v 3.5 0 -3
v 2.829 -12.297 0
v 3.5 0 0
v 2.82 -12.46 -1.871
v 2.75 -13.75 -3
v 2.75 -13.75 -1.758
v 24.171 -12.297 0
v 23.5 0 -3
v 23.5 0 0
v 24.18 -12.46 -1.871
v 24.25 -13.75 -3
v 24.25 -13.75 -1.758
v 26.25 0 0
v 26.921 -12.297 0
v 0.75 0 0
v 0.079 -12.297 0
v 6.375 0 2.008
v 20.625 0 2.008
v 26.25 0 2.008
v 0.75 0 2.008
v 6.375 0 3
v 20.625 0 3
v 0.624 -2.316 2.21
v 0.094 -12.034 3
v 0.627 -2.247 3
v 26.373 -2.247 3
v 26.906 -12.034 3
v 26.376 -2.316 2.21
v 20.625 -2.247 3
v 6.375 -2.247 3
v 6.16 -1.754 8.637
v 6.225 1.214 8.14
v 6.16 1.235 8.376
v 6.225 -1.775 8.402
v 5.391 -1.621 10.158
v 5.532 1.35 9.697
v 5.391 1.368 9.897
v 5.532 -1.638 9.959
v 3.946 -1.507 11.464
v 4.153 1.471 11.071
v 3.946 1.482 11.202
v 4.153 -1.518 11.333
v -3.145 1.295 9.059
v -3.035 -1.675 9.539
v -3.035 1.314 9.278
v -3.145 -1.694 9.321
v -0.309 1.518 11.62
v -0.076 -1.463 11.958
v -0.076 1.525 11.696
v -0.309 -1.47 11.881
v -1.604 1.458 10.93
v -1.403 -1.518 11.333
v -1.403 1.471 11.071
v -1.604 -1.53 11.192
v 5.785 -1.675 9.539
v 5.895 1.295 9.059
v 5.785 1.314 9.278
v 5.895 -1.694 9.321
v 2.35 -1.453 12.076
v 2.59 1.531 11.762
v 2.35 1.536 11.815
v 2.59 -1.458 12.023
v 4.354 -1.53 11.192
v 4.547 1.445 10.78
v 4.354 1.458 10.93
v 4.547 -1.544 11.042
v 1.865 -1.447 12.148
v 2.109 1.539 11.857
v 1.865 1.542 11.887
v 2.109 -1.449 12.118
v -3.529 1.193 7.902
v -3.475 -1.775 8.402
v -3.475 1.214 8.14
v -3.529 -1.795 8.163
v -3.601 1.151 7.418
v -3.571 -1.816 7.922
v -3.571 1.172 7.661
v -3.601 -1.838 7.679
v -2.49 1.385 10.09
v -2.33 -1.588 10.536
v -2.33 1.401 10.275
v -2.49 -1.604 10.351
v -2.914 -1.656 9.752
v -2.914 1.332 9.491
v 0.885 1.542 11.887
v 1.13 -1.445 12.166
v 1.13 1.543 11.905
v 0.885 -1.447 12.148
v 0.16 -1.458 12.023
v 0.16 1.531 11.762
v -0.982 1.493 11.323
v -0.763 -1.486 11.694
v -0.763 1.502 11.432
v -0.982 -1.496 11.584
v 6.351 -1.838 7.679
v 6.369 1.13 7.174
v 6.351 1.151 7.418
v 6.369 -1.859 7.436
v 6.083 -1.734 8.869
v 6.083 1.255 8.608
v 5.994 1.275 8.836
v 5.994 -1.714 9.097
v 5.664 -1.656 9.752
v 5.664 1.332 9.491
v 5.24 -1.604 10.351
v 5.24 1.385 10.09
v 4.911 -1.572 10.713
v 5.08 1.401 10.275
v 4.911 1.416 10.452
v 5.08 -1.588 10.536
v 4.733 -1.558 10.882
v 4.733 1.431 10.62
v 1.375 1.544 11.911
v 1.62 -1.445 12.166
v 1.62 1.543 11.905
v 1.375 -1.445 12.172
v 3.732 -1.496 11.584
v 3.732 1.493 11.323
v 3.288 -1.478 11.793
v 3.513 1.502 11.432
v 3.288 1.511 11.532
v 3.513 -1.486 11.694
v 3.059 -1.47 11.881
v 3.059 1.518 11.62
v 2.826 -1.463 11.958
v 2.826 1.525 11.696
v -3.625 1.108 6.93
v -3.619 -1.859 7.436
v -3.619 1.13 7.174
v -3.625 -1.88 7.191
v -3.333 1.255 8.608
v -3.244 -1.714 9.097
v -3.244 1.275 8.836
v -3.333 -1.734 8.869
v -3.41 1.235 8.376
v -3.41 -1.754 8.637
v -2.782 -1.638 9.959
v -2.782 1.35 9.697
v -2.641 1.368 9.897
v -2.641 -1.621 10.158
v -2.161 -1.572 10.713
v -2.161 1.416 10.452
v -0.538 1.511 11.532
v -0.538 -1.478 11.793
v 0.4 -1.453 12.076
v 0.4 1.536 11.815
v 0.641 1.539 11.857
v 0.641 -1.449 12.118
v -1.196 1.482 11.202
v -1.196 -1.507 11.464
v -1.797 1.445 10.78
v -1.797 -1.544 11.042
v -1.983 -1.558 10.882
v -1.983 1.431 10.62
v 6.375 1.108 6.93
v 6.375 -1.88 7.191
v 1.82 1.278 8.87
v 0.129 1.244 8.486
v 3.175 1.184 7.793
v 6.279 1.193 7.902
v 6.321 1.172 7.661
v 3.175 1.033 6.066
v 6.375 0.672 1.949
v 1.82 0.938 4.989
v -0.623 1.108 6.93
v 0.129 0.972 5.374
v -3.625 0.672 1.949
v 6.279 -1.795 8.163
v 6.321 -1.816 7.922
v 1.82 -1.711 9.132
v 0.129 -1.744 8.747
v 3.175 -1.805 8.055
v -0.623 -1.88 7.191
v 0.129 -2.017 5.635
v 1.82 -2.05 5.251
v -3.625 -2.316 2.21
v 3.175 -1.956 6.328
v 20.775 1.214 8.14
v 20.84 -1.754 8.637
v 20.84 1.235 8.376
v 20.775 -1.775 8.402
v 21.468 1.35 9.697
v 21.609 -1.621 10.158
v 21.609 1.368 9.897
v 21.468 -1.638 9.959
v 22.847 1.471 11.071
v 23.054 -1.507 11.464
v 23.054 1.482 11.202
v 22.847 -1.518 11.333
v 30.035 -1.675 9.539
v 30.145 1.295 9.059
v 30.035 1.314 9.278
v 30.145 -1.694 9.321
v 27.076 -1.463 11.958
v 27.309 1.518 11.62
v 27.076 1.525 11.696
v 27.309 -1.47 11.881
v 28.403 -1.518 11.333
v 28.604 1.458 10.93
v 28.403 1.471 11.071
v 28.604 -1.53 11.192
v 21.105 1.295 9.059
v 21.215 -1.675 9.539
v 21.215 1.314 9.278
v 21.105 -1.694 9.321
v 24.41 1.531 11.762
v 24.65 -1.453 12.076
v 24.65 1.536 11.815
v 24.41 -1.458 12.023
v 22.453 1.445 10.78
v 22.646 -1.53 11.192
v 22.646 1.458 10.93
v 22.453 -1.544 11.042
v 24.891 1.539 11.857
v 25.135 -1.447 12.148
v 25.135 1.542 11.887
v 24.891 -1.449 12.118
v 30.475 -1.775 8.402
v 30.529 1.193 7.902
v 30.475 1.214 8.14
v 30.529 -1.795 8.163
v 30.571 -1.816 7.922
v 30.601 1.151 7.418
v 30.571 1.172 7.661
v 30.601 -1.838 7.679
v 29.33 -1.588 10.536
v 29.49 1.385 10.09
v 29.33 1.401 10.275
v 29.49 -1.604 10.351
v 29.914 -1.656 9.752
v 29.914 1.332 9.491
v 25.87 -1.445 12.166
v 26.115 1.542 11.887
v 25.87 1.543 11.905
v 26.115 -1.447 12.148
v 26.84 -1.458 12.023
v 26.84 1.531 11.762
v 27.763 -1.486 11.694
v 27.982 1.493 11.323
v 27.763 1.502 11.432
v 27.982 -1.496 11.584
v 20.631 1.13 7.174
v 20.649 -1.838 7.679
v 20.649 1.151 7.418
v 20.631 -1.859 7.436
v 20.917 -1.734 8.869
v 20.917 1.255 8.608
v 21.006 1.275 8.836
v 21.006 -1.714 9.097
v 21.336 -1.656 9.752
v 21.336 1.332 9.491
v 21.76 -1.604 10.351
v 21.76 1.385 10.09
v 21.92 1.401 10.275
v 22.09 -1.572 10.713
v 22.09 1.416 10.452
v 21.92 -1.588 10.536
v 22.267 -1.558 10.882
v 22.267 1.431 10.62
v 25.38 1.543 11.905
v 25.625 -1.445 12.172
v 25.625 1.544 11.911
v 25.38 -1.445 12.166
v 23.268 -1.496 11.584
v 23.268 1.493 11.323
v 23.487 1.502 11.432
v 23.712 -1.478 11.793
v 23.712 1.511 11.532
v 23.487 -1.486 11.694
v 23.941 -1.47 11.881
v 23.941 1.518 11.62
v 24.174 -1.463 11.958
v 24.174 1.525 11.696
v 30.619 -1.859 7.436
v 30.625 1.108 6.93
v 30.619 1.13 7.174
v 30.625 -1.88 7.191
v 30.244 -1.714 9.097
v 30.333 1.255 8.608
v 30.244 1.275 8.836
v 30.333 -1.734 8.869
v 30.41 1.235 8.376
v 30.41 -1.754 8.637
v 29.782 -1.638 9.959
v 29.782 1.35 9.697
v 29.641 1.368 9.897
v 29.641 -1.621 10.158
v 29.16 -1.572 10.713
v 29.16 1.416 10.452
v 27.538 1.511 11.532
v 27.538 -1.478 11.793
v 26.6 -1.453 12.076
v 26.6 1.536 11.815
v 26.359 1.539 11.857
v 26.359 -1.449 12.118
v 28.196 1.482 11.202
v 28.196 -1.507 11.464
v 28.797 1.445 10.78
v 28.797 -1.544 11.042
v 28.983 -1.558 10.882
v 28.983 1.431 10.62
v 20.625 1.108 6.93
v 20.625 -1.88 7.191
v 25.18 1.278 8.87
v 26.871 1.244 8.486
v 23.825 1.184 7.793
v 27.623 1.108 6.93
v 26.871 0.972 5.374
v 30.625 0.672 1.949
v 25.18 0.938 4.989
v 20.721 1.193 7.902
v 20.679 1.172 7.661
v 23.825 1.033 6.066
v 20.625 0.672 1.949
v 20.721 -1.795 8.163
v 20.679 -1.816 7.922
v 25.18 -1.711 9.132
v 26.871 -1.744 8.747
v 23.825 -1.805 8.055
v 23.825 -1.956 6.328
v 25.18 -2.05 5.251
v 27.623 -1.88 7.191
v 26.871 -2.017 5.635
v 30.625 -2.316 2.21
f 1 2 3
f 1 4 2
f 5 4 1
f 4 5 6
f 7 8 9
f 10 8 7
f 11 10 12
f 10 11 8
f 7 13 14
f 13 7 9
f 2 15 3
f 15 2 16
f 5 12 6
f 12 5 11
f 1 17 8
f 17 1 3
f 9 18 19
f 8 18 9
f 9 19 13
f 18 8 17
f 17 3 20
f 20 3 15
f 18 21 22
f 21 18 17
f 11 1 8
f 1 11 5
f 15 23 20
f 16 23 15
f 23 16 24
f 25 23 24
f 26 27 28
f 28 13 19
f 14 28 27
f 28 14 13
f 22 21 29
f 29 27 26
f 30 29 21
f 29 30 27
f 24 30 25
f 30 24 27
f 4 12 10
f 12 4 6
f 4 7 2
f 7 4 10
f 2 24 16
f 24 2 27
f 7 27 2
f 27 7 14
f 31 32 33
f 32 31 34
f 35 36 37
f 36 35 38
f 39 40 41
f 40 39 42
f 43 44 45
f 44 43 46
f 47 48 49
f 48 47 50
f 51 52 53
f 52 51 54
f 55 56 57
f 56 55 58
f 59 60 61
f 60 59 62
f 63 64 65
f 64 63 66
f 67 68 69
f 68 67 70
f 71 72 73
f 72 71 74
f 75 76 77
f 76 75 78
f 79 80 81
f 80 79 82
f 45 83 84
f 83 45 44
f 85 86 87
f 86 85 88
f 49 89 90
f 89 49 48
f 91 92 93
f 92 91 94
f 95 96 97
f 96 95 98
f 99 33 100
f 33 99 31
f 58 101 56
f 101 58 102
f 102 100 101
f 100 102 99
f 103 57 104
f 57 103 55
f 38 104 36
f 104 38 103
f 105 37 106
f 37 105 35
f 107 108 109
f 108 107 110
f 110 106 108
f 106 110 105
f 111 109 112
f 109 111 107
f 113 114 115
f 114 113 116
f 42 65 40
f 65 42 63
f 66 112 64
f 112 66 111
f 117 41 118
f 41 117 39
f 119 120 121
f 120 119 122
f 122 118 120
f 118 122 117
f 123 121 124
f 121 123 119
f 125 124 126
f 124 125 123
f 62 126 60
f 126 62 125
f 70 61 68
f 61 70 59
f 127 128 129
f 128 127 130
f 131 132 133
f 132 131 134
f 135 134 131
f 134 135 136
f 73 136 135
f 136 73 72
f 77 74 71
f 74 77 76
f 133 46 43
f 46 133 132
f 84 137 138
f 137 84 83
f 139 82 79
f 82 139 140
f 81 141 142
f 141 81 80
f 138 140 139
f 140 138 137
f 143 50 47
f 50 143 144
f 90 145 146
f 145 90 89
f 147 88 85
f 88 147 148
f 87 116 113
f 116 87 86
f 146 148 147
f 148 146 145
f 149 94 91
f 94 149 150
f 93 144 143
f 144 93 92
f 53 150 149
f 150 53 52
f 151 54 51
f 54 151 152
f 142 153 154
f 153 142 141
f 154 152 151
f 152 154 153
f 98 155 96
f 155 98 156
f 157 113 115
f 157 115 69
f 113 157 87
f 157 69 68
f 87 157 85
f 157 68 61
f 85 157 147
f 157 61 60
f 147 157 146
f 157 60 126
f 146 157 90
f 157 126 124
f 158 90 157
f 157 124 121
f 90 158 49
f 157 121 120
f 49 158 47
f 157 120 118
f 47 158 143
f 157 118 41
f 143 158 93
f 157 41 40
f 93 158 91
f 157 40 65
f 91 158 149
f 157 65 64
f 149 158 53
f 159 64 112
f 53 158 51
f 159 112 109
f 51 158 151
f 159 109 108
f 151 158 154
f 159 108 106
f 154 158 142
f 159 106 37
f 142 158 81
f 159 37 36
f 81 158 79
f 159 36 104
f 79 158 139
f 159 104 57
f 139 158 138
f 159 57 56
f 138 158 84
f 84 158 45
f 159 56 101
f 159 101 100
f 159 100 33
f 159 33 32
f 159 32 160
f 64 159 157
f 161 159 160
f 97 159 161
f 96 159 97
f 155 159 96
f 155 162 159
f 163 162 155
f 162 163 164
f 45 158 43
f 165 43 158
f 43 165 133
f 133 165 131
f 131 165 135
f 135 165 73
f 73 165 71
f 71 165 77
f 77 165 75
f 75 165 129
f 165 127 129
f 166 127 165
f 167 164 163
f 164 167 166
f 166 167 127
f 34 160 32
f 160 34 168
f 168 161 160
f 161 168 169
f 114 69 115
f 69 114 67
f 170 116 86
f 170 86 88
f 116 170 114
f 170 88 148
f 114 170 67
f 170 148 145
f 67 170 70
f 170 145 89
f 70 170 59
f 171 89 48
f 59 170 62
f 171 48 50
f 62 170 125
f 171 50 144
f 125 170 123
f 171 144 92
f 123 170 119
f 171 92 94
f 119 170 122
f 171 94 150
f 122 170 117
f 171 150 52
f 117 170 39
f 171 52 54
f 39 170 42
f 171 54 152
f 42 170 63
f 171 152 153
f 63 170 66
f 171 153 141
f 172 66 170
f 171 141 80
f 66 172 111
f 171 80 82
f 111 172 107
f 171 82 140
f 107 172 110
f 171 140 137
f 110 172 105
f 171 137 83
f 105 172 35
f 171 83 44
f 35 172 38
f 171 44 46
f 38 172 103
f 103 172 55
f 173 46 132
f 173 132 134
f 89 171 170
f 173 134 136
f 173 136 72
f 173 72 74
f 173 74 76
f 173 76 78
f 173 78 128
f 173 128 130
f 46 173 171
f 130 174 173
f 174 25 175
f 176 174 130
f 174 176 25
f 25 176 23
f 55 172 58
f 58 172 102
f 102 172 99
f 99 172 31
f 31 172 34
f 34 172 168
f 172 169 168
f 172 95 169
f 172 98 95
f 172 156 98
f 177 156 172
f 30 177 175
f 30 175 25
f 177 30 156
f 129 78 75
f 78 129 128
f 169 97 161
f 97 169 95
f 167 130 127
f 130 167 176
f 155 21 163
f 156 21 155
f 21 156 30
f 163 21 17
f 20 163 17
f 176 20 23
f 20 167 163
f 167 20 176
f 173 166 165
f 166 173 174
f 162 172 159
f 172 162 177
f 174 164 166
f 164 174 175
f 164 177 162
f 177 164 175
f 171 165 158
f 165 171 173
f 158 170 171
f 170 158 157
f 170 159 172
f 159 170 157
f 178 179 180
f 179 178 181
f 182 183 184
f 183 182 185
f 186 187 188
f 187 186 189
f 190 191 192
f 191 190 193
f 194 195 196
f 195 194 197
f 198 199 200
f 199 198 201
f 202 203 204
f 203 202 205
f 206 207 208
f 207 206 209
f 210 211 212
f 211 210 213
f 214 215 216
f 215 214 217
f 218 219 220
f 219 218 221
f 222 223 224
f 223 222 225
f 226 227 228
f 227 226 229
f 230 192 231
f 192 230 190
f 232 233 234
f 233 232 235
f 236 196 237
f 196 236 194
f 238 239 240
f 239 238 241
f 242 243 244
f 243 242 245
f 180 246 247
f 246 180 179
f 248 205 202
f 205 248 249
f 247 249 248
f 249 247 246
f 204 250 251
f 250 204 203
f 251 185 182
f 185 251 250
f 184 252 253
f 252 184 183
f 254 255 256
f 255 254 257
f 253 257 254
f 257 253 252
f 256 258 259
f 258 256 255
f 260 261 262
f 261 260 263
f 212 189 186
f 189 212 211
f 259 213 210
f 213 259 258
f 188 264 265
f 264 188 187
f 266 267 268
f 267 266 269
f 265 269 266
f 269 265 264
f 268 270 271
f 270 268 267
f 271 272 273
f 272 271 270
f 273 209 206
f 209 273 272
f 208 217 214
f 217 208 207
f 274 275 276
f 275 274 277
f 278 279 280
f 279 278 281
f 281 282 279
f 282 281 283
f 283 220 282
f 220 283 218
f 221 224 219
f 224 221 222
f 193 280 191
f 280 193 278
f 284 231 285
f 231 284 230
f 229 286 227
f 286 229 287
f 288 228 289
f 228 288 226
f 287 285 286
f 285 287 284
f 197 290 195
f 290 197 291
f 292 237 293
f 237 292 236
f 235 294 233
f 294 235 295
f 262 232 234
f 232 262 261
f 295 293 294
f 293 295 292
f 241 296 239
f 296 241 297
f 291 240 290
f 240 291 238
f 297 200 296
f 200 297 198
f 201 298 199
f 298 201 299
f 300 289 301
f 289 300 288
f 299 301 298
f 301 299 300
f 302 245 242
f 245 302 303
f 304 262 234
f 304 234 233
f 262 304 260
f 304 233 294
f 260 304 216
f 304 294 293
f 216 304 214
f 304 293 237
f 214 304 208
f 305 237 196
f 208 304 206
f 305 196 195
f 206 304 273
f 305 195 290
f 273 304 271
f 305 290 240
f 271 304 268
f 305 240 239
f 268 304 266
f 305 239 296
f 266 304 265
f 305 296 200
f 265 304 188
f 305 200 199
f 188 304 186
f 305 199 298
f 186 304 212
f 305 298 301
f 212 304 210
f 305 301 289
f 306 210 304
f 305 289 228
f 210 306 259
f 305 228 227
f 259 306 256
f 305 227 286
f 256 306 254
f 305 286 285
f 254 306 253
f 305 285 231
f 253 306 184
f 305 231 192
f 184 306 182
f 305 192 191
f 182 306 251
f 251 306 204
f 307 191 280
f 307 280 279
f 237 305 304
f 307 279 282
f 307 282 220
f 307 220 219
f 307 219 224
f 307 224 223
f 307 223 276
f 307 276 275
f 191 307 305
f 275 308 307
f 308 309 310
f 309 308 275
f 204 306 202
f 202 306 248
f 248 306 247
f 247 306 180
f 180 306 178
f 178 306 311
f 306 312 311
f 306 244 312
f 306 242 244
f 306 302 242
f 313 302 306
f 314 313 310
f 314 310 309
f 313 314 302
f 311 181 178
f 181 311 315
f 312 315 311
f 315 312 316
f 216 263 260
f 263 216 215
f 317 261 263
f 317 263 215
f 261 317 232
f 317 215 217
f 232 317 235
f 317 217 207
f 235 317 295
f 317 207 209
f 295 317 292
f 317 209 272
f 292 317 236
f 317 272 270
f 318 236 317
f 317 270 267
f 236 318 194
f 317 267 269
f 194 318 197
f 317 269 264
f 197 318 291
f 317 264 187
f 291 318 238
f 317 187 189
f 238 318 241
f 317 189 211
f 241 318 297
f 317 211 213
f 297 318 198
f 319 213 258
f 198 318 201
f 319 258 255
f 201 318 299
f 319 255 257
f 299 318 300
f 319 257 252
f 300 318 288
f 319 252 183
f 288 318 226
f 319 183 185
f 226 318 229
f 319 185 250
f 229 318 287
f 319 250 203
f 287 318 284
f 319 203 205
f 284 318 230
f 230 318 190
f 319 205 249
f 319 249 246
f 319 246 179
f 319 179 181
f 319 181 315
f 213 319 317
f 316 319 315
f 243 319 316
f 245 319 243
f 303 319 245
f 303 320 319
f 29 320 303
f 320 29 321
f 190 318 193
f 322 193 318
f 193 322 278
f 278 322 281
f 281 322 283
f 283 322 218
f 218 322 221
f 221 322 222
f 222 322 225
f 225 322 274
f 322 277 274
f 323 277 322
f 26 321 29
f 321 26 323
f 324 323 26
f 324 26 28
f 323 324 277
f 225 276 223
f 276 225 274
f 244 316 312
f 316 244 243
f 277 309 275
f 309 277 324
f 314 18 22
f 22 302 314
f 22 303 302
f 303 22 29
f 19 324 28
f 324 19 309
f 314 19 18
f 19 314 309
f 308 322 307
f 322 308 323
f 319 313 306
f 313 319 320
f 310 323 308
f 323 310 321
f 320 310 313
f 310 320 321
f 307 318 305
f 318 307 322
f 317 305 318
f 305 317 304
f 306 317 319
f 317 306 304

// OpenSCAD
// file: retainer-clip-template.scad
COVER_X = 27;
COVER_X_VARIANCE = 1.5;
COVER_X_OFFSET = 2.75;
COVER_Y = 6;
COVER_Y_OFFSET = .05;
COVER_Z = 13.75;
COVER_Z_OFFSET = 1.5;
COVER_ANGLE = 5;

CLIP_R_OUTER = 5;
CLIP_R_INNER = 1.8;
CLIP_X_SEPARATION = 24.25;
CLIP_Y_OFFSET = 7;
CLIP_Z = 3;
CLIP_Z_OFFSET = .5;

CYLINDER_FACETS = 128;

module copy_mirror(v) { 
    children(); 
    mirror(v) children(); 
} 

module retainerClip() {
    rotate([COVER_ANGLE, 0, 0]) {
        difference() {
            union() {
                translate([COVER_X_OFFSET, 0, 0])
                    linear_extrude(height = COVER_Y / 2) 
                        polygon(points=[[COVER_X_VARIANCE / 2, 0], [COVER_X - (COVER_X_OFFSET * 2) - (COVER_X_VARIANCE / 2), 0], [COVER_X - (COVER_X_OFFSET * 2), COVER_Z], [0, COVER_Z]]);
                translate([0, 0, -COVER_Y / 2])
                    linear_extrude(height = COVER_Y / 2) 
                        polygon(points=[[COVER_X_VARIANCE / 2, 0], [COVER_X - (COVER_X_VARIANCE / 2), 0], [COVER_X, COVER_Z], [0, COVER_Z]]);
            }
            rotate([-COVER_ANGLE, 0, 0]) {
                translate([0, COVER_Z - COVER_Z_OFFSET, -COVER_Y / 2])
                    cube([COVER_X, COVER_Z_OFFSET * 2, COVER_Y - COVER_Y_OFFSET]);
            }
        }
    
        rotate([-90 - COVER_ANGLE, 0, 0]) {
        translate([COVER_X / 2, 0, 0])
            copy_mirror(vec=[0,1,0])
                translate([-CLIP_X_SEPARATION / 2, CLIP_Y_OFFSET, -CLIP_Z_OFFSET])
                    difference() {
                        union() {
                            cylinder(r=CLIP_R_OUTER, h=CLIP_Z, $fn=CYLINDER_FACETS);
                            translate([-CLIP_R_OUTER, -CLIP_R_OUTER, 0])
                                cube([CLIP_R_OUTER * 2, CLIP_R_OUTER, CLIP_Z]);
                        }
                        polyhole(h=CLIP_Z, d=CLIP_R_INNER * 2);
                    }
        }
    }
}
// main file
include <MCAD/polyholes.scad>;
include <retainer-clip-template.scad>;

rotate([180 - COVER_ANGLE, 0, 0]) { 
    retainerClip();
}
